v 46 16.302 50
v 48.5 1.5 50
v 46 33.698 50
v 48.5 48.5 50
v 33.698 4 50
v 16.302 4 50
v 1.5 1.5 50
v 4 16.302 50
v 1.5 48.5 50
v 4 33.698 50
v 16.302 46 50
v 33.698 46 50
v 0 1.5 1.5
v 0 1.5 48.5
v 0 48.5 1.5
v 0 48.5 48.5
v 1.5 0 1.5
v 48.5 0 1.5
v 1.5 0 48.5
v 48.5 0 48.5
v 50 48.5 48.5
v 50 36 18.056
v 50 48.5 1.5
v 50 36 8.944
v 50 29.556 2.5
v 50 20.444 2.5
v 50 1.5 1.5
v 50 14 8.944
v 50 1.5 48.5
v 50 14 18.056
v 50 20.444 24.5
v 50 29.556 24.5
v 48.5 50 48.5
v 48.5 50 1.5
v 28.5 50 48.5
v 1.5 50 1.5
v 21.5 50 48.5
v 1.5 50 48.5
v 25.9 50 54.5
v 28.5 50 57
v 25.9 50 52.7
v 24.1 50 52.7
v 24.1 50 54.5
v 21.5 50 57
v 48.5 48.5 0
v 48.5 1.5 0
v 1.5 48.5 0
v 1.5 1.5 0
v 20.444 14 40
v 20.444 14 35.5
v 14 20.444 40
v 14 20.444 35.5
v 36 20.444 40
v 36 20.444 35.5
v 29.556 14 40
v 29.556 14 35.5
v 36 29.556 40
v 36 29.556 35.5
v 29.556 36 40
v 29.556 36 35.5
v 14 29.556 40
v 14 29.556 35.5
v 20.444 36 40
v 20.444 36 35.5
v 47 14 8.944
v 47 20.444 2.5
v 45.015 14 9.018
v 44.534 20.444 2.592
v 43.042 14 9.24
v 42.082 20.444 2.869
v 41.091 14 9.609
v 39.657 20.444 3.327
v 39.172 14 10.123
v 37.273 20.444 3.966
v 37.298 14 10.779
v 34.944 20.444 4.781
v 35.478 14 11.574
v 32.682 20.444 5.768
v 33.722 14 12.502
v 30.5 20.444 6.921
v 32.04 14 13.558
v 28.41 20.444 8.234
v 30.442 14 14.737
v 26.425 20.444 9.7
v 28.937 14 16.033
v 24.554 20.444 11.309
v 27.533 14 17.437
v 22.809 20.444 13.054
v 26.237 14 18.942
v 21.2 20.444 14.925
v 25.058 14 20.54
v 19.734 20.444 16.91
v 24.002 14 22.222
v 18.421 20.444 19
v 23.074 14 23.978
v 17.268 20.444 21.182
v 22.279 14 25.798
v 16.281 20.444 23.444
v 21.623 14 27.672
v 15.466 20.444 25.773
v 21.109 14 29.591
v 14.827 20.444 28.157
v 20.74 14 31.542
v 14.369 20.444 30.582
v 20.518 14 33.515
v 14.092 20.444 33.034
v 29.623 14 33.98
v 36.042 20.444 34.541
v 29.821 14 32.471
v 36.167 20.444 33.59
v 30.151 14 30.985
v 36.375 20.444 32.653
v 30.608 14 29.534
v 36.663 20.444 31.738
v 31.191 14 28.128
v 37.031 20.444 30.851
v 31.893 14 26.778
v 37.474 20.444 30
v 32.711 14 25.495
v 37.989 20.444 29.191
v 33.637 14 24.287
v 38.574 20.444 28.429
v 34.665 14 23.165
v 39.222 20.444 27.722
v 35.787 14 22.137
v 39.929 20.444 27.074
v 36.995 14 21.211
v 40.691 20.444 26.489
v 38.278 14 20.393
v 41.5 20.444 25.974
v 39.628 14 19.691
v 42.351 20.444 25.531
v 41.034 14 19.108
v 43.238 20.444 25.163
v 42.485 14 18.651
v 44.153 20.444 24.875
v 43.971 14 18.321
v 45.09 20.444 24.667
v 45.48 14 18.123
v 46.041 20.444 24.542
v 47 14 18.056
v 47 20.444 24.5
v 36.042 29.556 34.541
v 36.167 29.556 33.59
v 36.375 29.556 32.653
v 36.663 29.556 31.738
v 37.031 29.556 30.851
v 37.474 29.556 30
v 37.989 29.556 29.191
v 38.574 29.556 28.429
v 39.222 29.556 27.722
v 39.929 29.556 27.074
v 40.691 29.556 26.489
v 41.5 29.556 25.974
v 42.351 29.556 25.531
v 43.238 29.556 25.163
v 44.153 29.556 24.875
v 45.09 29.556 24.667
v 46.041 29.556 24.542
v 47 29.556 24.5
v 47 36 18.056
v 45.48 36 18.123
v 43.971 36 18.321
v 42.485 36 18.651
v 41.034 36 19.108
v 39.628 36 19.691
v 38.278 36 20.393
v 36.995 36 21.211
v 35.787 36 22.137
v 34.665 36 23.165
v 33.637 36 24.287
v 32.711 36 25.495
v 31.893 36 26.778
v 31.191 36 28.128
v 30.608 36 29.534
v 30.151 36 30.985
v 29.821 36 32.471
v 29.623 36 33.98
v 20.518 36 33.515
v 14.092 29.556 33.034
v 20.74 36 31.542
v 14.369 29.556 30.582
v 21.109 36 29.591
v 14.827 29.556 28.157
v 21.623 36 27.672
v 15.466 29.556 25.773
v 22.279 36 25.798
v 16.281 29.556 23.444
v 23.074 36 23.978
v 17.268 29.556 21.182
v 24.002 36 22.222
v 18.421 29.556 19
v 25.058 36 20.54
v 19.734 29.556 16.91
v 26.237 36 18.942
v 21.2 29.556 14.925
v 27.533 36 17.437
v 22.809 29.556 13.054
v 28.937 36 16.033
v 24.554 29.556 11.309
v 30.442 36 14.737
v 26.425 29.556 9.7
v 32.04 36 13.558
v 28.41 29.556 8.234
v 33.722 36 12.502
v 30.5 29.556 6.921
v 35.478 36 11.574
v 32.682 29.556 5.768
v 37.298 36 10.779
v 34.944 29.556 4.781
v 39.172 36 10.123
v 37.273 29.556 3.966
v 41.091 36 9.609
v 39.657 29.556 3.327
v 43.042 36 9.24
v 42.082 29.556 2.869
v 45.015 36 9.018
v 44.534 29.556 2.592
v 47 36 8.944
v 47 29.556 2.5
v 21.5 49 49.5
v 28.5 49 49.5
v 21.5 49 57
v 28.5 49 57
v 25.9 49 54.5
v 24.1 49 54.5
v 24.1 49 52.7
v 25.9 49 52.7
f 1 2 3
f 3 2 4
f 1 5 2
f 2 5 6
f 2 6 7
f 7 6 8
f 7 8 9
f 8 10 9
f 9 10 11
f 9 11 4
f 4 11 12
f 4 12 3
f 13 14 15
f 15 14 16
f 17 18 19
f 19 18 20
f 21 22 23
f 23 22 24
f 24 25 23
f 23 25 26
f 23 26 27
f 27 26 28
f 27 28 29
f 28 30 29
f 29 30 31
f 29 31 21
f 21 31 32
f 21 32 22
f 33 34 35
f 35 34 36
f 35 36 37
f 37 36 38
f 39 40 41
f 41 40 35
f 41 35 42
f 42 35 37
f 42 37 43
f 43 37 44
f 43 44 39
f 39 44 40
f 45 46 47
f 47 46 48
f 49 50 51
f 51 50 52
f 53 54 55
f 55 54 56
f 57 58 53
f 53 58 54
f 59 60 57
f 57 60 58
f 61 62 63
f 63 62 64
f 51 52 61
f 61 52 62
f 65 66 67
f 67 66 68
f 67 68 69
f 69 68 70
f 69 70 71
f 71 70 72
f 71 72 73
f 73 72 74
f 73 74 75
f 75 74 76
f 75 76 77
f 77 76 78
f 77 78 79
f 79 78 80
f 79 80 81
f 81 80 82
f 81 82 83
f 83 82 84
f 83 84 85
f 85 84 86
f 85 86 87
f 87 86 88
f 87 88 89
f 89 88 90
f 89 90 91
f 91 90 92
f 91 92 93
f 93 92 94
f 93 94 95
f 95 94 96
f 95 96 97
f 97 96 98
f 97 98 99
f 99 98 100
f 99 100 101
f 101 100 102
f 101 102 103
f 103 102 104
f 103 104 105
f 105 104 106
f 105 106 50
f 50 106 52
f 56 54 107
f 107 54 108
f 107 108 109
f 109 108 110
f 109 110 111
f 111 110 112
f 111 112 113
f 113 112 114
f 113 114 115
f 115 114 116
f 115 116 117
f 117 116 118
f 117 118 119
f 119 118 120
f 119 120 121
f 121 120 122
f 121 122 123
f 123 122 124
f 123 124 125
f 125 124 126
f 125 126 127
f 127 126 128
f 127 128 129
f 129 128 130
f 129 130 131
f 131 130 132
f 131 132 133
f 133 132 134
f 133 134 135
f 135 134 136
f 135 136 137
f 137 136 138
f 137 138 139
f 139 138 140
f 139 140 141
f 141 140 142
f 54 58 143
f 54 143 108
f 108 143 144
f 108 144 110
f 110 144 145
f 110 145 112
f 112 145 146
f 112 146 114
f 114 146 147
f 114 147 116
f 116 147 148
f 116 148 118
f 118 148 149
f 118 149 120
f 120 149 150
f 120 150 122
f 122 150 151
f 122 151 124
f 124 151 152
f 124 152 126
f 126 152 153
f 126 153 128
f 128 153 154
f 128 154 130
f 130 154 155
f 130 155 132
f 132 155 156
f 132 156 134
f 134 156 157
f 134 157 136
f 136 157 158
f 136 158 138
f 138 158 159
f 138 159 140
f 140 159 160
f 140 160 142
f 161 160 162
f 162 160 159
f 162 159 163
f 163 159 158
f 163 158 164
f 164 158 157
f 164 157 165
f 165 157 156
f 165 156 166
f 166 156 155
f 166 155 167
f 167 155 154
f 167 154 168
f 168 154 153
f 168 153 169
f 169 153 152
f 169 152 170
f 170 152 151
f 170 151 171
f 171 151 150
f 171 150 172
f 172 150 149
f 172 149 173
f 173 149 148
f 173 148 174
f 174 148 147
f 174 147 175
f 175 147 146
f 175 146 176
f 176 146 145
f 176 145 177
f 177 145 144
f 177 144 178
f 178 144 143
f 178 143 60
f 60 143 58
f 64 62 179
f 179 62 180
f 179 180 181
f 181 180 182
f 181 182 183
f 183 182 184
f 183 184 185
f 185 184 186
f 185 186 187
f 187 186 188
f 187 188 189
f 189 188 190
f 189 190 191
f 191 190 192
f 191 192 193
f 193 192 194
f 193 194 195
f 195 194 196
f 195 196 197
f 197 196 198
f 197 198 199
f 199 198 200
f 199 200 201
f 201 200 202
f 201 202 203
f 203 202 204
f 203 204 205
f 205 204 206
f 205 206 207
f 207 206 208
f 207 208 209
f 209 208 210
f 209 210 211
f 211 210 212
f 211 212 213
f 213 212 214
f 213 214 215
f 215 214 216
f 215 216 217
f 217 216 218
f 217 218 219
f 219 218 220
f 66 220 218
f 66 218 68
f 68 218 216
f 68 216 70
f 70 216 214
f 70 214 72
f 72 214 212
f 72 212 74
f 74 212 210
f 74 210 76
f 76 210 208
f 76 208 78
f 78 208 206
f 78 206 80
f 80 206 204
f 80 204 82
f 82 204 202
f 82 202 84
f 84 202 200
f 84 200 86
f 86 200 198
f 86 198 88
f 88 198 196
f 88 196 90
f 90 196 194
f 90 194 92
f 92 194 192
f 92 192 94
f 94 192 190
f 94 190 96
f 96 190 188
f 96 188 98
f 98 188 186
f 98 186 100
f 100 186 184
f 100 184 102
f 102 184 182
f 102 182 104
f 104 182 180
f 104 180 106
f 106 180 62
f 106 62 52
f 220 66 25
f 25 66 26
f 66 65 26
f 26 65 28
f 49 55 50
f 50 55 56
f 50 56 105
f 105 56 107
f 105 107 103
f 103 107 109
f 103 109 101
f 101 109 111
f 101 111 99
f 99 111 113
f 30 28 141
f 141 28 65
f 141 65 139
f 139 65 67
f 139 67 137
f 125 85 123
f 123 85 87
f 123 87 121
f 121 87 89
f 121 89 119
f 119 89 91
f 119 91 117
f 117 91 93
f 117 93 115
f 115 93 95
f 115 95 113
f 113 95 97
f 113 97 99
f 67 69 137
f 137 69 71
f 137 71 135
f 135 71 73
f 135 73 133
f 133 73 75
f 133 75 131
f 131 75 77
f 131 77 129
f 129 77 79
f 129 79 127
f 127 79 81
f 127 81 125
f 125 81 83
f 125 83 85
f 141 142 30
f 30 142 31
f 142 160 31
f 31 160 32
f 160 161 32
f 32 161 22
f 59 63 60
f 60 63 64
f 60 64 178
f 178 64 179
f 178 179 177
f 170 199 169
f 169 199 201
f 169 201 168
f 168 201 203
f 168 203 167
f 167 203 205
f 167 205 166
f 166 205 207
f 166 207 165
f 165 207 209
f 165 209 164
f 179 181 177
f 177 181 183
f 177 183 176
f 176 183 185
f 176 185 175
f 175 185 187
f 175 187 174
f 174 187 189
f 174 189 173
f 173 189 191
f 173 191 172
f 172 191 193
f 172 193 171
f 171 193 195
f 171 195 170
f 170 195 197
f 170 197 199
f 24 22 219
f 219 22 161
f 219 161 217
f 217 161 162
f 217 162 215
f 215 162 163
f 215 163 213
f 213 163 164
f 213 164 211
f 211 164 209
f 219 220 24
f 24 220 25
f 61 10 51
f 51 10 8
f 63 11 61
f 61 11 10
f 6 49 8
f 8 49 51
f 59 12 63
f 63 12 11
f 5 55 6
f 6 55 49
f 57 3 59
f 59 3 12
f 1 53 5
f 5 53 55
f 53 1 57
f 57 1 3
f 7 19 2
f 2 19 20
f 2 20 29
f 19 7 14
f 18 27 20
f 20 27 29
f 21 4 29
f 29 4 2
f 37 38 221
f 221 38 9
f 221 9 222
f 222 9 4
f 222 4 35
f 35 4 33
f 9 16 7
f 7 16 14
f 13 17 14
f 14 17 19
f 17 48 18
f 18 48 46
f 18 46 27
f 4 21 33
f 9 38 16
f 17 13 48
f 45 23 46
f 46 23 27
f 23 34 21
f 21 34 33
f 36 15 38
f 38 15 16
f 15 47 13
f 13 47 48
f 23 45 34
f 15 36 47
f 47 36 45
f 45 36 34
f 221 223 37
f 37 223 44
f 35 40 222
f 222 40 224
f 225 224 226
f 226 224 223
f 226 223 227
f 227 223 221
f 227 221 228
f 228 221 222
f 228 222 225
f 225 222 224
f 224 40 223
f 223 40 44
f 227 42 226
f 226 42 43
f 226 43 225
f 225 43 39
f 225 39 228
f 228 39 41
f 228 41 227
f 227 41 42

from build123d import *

# Parameters (mm, degrees)
SKETCH1_W                = 50
SKETCH1_H                = 50
BOSS_EXTRUDE1_DEPTH      = 50
CHAMFER1_SIZE            = 10
CHAMFER2_SIZE            = 1.5
BOSS_EXTRUDE2_DEPTH      = 7
BOSS_EXTRUDE2_DEPTH_BACK = 10
SKETCH10_W               = 7
SKETCH10_H               = 1
SKETCH11_W               = 1.8
SKETCH11_H               = 1.8
CUT_EXTRUDE1_DEPTH       = 7


with BuildPart() as part:
    # Sketch1 → Boss-Extrude1 (new body)
    with BuildSketch(Plane.XY):
        with Locations((25, 25)):
            Rectangle(SKETCH1_W, SKETCH1_H)
    extrude(amount=BOSS_EXTRUDE1_DEPTH)

    # Cut-Sweep5: sweep along a path in Sketch9
    with BuildLine(Plane(origin=(0, 25, 0), x_dir=(-1, 0, 0), z_dir=(0, -1, 0))) as cut_sweep5_path:
        Line((-50, -13.5), (-47, -13.5))
        ThreePointArc((-47, -13.5), (-31.443650814, -19.943650814), (-25, -35.5))
        Line((-25, -35.5), (-25, -50))
    # Sketch8 → Cut-Sweep5 (sweep, cut)
    with BuildSketch(Plane(origin=(50, 0, 0), x_dir=(0, 0, -1), z_dir=(1, 0, 0))):
        Polygon((-2.5, 29.556349186), (-8.943650814, 36), (-18.056349186, 36), (-24.5, 29.556349186), (-24.5, 20.443650814), (-18.056349186, 14), (-8.943650814, 14), (-2.5, 20.443650814), align=None)
    sweep(path=cut_sweep5_path.line, mode=Mode.SUBTRACT)

    # Chamfer1
    chamfer1_edges = [part.edges().sort_by_distance(p)[0] for p in [
        (17.221825407, 17.221825407, 50),
        (32.778174593, 17.221825407, 50),
        (36, 25, 50),
        (32.778174593, 32.778174593, 50),
        (17.221825407, 32.778174593, 50),
        (14, 25, 50),
        (25, 14, 50),
        (25, 36, 50),
    ]]
    chamfer(chamfer1_edges, length=CHAMFER1_SIZE)

    # Chamfer2
    chamfer2_edges = [part.edges().sort_by_distance(p)[0] for p in [
        (50, 25, 50),
        (25, 50, 50),
        (0, 25, 50),
        (25, 50, 0),
        (50, 25, 0),
        (25, 0, 0),
        (0, 25, 0),
        (25, 0, 50),
        (0, 50, 25),
        (50, 50, 25),
        (50, 0, 25),
        (0, 0, 25),
    ]]
    chamfer(chamfer2_edges, length=CHAMFER2_SIZE)

    # Sketch10 → Boss-Extrude2 (add, two sides: drawn at the far end of the back side and taken through both)
    with BuildSketch(Plane.XY.offset(50).offset(-BOSS_EXTRUDE2_DEPTH_BACK)):
        with Locations((25, 49.5)):
            Rectangle(SKETCH10_W, SKETCH10_H)
    extrude(amount=BOSS_EXTRUDE2_DEPTH + BOSS_EXTRUDE2_DEPTH_BACK)

    # Sketch11 → Cut-Extrude1 (cut)
    with BuildSketch(Plane.XZ.offset(-49)):
        with Locations((25, 53.6)):
            Rectangle(SKETCH11_W, SKETCH11_H)
    extrude(amount=-CUT_EXTRUDE1_DEPTH, mode=Mode.SUBTRACT)


solid = part.part
